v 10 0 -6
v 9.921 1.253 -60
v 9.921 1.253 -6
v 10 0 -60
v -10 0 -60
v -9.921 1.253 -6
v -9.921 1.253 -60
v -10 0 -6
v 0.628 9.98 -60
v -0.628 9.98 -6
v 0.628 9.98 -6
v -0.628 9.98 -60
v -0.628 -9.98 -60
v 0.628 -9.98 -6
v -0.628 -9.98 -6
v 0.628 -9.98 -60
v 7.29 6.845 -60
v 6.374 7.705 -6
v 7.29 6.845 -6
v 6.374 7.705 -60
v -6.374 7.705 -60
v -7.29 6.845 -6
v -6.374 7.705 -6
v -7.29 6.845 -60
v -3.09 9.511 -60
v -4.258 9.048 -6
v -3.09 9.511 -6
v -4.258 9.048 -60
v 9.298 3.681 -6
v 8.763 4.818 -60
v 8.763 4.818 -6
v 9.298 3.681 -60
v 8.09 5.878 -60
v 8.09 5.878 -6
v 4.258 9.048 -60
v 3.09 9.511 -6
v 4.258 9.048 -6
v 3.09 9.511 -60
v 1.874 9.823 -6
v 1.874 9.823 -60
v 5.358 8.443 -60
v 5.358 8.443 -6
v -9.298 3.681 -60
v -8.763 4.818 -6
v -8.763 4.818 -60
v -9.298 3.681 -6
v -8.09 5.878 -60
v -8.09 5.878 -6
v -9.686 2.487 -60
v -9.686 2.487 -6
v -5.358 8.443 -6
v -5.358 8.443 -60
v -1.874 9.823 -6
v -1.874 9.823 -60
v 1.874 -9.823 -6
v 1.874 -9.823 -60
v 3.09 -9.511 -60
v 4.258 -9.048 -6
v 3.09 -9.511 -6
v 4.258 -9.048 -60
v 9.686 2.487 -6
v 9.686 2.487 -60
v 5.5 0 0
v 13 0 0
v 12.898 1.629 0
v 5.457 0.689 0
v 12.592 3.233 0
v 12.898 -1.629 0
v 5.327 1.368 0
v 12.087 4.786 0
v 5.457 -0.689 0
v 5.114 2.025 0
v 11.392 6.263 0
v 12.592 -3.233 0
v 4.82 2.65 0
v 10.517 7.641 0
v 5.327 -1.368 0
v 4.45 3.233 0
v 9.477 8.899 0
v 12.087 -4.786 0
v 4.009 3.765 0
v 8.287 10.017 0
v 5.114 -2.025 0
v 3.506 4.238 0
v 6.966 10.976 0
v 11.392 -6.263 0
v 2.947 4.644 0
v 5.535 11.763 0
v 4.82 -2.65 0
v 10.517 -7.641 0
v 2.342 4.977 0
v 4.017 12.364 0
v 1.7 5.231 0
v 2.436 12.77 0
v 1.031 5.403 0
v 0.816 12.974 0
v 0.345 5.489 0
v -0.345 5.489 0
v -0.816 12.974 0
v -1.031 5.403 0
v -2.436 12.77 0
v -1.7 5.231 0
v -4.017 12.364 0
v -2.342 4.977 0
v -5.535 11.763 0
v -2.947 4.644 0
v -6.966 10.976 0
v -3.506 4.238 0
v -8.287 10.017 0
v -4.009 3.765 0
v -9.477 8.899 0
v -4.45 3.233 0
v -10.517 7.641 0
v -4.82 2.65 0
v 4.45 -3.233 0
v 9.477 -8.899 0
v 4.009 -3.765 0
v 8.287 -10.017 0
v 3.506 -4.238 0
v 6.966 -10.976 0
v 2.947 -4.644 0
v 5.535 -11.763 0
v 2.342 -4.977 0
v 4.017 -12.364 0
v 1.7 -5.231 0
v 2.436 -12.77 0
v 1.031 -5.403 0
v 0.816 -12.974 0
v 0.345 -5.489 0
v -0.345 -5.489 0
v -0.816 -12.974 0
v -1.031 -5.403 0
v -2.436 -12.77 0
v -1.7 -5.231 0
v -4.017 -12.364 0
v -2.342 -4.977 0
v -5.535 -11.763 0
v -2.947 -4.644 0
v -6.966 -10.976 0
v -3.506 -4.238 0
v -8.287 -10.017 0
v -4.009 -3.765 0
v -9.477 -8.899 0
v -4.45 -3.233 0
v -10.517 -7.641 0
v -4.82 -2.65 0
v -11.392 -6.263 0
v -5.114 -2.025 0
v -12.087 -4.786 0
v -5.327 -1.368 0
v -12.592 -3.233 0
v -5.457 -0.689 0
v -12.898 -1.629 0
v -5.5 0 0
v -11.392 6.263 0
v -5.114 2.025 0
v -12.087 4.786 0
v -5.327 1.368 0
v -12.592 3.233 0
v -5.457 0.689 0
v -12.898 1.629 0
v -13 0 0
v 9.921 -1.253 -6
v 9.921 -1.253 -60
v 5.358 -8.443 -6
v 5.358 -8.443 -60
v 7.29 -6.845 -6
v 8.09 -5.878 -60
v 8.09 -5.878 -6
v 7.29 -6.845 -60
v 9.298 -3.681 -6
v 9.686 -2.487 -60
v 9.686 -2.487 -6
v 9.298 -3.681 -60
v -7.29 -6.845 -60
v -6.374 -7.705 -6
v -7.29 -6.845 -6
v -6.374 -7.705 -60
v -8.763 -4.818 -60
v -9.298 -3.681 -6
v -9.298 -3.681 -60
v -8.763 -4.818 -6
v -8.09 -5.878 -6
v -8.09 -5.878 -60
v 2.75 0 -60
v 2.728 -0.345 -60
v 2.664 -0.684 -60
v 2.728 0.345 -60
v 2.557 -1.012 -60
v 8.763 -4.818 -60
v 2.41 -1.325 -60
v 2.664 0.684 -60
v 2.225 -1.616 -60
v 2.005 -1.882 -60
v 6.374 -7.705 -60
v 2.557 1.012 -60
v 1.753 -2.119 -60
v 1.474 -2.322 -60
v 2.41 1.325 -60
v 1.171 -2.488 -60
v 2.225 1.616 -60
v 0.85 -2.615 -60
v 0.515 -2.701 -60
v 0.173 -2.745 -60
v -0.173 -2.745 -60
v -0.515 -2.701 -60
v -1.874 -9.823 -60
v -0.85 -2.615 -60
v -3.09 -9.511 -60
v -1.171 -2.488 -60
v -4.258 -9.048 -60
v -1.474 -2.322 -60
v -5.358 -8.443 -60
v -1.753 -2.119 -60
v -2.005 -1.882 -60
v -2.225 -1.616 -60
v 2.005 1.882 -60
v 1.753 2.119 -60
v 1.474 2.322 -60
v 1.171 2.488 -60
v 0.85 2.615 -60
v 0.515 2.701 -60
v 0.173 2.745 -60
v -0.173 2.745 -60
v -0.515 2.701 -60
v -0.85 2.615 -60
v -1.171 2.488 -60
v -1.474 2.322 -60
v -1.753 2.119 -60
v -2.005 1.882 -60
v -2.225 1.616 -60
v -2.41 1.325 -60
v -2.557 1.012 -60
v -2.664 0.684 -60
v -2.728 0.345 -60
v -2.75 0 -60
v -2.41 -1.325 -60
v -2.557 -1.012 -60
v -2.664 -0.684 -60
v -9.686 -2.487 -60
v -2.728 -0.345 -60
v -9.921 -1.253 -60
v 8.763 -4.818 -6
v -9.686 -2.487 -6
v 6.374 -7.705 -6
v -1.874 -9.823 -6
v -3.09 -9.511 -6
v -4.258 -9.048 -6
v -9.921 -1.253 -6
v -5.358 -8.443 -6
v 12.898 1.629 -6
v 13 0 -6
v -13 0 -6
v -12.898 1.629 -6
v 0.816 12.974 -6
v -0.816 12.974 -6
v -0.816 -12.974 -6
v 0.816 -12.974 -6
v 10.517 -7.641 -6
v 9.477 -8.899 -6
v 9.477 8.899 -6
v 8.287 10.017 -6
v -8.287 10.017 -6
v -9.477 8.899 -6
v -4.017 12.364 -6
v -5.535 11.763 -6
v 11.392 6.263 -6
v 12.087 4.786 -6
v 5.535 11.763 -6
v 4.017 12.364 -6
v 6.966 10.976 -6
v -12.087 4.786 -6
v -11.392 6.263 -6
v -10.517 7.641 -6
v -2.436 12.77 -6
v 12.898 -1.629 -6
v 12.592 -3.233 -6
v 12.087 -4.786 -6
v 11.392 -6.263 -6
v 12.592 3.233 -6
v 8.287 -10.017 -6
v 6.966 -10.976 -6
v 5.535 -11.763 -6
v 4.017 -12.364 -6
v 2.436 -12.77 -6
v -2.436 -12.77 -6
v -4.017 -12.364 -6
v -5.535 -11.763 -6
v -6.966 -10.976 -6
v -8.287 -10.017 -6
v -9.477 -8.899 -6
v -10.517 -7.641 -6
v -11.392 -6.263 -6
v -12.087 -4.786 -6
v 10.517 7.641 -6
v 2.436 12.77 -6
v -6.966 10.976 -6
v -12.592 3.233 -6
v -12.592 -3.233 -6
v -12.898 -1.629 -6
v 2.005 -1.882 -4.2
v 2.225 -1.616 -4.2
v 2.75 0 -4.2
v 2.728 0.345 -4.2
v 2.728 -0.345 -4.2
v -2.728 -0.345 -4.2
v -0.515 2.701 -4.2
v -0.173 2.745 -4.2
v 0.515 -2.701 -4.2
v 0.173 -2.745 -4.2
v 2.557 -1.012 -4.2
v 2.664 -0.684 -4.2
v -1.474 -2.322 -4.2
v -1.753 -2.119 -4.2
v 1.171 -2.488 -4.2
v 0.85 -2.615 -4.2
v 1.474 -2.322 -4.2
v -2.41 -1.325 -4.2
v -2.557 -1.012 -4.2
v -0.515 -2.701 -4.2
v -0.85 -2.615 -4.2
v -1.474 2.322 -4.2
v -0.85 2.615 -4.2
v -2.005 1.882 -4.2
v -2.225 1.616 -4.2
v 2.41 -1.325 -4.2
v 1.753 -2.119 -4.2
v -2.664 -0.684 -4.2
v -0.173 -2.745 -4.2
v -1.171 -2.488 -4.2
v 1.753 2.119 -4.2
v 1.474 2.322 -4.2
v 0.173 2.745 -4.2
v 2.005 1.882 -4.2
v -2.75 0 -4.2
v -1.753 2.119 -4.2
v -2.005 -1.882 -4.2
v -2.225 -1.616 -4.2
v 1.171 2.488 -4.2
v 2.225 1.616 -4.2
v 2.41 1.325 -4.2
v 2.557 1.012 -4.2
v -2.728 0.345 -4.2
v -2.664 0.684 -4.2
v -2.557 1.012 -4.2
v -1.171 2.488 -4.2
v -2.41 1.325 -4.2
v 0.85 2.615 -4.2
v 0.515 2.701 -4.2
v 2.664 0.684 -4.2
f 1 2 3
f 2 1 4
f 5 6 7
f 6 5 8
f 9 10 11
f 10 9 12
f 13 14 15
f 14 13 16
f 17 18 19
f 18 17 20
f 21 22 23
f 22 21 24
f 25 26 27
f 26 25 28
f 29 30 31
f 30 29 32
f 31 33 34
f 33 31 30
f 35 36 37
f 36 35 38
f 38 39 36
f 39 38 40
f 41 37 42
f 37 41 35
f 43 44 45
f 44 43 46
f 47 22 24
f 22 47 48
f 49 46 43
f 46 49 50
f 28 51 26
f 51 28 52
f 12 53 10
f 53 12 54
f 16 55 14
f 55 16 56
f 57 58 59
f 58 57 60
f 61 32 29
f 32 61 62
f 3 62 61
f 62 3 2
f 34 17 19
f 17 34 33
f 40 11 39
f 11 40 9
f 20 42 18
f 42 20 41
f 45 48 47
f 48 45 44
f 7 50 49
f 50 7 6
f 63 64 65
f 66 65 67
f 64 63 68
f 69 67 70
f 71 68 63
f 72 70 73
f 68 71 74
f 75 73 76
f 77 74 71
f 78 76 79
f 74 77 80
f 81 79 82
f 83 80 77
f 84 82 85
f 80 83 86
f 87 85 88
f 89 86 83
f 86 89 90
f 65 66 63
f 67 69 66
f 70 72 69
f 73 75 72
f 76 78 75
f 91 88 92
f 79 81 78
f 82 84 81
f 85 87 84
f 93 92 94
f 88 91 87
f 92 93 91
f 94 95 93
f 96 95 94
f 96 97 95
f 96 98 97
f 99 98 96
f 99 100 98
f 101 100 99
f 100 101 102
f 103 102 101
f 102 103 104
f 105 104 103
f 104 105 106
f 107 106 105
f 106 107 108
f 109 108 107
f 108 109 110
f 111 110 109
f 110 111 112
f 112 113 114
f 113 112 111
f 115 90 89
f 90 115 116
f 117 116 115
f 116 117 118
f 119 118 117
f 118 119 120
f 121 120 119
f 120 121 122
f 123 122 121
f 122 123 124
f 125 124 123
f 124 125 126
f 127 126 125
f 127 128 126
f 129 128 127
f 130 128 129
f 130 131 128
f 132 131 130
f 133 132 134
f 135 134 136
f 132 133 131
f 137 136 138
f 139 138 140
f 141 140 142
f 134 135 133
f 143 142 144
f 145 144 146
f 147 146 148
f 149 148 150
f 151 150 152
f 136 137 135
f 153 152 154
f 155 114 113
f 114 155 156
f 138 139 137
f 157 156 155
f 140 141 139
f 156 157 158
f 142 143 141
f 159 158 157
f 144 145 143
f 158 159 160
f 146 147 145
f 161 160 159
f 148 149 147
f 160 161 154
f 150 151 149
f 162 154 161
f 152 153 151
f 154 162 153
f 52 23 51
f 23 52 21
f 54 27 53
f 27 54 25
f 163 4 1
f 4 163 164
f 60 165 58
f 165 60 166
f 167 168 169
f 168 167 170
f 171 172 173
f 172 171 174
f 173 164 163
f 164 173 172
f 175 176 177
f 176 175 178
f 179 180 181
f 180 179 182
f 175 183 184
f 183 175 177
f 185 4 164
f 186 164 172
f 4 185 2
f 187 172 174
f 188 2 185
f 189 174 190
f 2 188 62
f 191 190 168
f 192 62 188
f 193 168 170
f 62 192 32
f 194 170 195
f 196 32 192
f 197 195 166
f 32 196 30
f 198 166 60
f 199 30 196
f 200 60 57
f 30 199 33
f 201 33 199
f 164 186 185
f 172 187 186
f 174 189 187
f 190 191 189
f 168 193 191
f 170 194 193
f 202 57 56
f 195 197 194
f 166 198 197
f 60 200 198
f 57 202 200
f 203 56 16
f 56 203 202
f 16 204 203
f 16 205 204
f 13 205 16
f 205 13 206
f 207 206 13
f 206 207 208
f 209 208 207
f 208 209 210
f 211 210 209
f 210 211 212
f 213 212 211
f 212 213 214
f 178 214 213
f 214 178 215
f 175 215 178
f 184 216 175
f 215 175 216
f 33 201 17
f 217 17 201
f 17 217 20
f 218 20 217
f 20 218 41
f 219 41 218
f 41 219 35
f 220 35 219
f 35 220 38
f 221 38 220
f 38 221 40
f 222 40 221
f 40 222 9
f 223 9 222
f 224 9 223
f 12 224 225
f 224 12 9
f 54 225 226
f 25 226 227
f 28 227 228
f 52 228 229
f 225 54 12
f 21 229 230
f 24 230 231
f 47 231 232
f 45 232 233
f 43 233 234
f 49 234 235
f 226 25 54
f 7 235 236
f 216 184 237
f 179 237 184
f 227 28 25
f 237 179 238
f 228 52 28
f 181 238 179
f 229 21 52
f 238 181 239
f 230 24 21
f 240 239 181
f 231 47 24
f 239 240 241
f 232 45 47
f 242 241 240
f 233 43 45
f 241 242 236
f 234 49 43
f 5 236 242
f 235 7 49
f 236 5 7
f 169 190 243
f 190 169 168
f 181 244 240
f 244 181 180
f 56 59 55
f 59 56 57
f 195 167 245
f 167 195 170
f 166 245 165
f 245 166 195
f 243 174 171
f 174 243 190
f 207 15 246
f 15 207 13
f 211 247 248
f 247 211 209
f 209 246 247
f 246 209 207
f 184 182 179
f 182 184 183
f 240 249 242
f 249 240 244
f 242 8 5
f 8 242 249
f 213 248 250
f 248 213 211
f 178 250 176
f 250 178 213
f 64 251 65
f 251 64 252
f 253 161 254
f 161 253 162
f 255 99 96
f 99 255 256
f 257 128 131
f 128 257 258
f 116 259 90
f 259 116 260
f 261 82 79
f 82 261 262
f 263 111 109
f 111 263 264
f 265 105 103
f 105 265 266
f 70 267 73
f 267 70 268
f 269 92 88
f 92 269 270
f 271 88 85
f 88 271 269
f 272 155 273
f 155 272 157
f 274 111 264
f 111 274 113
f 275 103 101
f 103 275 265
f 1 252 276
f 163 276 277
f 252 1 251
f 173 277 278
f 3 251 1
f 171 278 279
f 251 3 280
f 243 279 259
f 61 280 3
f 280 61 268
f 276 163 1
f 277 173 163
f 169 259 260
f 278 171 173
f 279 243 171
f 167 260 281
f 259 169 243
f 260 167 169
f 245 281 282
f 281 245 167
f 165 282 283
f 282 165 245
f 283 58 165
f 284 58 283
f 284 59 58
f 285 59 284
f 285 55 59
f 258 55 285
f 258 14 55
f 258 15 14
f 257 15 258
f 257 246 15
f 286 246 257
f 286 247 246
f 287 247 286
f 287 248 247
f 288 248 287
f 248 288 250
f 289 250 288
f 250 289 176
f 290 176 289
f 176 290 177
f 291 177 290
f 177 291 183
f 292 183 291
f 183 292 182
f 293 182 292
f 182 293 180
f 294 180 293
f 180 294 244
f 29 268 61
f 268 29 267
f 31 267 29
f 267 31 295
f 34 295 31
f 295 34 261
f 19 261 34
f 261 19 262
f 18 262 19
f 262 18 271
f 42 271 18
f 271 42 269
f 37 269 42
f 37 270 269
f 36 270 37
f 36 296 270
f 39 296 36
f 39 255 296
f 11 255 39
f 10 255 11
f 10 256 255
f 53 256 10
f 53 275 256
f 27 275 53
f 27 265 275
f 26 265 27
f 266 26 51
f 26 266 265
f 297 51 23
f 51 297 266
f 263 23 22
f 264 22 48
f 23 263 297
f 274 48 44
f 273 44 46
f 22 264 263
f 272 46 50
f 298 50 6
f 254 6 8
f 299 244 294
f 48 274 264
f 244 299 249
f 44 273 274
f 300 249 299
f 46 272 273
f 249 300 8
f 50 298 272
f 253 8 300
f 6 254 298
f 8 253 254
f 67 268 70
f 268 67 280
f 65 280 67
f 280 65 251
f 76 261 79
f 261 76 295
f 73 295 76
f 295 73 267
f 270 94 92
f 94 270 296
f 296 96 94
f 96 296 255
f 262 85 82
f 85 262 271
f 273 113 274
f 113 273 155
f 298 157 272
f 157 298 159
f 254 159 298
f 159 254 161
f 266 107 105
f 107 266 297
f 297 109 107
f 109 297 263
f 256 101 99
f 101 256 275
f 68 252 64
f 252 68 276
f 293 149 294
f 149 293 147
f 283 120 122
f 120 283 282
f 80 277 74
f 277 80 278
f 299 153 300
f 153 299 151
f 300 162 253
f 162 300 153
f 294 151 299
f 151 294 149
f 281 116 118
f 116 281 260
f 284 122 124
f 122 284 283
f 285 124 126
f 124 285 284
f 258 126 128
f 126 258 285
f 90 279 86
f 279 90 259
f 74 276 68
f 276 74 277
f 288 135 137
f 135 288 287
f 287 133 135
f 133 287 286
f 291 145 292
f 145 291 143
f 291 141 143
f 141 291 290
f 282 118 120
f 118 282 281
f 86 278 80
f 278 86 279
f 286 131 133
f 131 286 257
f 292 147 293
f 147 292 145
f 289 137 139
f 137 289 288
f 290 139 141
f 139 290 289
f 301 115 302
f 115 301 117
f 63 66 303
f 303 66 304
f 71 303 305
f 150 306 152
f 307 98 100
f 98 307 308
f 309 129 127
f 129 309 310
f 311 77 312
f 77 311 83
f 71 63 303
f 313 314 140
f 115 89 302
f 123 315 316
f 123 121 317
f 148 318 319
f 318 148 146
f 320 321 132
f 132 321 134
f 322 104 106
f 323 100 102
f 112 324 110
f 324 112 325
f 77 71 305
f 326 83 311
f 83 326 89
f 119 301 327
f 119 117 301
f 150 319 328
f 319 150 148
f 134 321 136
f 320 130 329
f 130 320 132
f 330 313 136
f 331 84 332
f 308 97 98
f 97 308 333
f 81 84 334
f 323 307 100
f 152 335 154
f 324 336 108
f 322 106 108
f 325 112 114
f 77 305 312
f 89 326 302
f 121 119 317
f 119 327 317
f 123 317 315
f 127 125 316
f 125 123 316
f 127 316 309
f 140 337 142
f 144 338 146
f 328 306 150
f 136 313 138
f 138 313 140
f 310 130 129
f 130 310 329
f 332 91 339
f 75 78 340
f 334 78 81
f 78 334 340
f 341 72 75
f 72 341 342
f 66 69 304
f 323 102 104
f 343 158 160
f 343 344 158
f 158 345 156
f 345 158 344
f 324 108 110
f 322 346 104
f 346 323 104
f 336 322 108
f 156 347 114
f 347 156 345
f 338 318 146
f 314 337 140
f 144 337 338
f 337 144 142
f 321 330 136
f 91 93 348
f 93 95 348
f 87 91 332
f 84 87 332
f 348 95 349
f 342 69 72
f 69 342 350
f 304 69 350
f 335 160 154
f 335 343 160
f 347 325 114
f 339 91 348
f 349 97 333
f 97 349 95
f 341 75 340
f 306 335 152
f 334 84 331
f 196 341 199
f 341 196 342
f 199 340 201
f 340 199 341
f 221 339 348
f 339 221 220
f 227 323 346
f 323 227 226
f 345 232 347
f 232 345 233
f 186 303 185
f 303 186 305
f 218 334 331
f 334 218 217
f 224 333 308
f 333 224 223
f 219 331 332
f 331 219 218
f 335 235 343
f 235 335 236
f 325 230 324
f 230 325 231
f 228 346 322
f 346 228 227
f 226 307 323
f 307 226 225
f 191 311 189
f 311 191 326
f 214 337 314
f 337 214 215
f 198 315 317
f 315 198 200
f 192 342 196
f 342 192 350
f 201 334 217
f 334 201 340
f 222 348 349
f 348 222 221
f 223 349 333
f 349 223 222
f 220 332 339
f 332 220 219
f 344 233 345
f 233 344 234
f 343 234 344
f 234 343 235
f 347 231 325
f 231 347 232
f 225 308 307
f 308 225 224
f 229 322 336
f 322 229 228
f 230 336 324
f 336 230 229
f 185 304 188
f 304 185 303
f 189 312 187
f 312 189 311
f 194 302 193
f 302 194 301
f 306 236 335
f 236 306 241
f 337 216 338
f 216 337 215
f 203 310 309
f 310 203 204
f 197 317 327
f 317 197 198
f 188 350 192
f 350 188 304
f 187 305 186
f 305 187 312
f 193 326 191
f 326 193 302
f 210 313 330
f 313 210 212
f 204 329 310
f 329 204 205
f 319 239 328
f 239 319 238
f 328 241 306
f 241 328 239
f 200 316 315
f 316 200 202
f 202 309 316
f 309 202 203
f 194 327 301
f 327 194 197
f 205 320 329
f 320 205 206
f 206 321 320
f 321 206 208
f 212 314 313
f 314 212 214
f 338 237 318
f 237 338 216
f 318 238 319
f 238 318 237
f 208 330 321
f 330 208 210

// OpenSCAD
$fn = 50;


difference() {
	union() {
		translate(v = [0, 0, -60.0000000000]) {
			cylinder(h = 60, r = 10.0000000000);
		}
		translate(v = [0, 0, -6.0000000000]) {
			cylinder(h = 6, r = 13.0000000000);
		}
	}
	union() {
		translate(v = [0, 0, 0]) {
			rotate(a = [0, 0, 0]) {
				difference() {
					union() {
						#translate(v = [0, 0, -60.0000000000]) {
							cylinder(h = 60, r = 2.2500000000);
						}
						#translate(v = [0, 0, -4.2000000000]) {
							cylinder(h = 4.2000000000, r1 = 2.7500000000, r2 = 5.5000000000);
						}
						#translate(v = [0, 0, -60.0000000000]) {
							cylinder(h = 60, r = 2.7500000000);
						}
						#translate(v = [0, 0, -60.0000000000]) {
							cylinder(h = 60, r = 2.2500000000);
						}
					}
					union();
				}
			}
		}
	}
}
